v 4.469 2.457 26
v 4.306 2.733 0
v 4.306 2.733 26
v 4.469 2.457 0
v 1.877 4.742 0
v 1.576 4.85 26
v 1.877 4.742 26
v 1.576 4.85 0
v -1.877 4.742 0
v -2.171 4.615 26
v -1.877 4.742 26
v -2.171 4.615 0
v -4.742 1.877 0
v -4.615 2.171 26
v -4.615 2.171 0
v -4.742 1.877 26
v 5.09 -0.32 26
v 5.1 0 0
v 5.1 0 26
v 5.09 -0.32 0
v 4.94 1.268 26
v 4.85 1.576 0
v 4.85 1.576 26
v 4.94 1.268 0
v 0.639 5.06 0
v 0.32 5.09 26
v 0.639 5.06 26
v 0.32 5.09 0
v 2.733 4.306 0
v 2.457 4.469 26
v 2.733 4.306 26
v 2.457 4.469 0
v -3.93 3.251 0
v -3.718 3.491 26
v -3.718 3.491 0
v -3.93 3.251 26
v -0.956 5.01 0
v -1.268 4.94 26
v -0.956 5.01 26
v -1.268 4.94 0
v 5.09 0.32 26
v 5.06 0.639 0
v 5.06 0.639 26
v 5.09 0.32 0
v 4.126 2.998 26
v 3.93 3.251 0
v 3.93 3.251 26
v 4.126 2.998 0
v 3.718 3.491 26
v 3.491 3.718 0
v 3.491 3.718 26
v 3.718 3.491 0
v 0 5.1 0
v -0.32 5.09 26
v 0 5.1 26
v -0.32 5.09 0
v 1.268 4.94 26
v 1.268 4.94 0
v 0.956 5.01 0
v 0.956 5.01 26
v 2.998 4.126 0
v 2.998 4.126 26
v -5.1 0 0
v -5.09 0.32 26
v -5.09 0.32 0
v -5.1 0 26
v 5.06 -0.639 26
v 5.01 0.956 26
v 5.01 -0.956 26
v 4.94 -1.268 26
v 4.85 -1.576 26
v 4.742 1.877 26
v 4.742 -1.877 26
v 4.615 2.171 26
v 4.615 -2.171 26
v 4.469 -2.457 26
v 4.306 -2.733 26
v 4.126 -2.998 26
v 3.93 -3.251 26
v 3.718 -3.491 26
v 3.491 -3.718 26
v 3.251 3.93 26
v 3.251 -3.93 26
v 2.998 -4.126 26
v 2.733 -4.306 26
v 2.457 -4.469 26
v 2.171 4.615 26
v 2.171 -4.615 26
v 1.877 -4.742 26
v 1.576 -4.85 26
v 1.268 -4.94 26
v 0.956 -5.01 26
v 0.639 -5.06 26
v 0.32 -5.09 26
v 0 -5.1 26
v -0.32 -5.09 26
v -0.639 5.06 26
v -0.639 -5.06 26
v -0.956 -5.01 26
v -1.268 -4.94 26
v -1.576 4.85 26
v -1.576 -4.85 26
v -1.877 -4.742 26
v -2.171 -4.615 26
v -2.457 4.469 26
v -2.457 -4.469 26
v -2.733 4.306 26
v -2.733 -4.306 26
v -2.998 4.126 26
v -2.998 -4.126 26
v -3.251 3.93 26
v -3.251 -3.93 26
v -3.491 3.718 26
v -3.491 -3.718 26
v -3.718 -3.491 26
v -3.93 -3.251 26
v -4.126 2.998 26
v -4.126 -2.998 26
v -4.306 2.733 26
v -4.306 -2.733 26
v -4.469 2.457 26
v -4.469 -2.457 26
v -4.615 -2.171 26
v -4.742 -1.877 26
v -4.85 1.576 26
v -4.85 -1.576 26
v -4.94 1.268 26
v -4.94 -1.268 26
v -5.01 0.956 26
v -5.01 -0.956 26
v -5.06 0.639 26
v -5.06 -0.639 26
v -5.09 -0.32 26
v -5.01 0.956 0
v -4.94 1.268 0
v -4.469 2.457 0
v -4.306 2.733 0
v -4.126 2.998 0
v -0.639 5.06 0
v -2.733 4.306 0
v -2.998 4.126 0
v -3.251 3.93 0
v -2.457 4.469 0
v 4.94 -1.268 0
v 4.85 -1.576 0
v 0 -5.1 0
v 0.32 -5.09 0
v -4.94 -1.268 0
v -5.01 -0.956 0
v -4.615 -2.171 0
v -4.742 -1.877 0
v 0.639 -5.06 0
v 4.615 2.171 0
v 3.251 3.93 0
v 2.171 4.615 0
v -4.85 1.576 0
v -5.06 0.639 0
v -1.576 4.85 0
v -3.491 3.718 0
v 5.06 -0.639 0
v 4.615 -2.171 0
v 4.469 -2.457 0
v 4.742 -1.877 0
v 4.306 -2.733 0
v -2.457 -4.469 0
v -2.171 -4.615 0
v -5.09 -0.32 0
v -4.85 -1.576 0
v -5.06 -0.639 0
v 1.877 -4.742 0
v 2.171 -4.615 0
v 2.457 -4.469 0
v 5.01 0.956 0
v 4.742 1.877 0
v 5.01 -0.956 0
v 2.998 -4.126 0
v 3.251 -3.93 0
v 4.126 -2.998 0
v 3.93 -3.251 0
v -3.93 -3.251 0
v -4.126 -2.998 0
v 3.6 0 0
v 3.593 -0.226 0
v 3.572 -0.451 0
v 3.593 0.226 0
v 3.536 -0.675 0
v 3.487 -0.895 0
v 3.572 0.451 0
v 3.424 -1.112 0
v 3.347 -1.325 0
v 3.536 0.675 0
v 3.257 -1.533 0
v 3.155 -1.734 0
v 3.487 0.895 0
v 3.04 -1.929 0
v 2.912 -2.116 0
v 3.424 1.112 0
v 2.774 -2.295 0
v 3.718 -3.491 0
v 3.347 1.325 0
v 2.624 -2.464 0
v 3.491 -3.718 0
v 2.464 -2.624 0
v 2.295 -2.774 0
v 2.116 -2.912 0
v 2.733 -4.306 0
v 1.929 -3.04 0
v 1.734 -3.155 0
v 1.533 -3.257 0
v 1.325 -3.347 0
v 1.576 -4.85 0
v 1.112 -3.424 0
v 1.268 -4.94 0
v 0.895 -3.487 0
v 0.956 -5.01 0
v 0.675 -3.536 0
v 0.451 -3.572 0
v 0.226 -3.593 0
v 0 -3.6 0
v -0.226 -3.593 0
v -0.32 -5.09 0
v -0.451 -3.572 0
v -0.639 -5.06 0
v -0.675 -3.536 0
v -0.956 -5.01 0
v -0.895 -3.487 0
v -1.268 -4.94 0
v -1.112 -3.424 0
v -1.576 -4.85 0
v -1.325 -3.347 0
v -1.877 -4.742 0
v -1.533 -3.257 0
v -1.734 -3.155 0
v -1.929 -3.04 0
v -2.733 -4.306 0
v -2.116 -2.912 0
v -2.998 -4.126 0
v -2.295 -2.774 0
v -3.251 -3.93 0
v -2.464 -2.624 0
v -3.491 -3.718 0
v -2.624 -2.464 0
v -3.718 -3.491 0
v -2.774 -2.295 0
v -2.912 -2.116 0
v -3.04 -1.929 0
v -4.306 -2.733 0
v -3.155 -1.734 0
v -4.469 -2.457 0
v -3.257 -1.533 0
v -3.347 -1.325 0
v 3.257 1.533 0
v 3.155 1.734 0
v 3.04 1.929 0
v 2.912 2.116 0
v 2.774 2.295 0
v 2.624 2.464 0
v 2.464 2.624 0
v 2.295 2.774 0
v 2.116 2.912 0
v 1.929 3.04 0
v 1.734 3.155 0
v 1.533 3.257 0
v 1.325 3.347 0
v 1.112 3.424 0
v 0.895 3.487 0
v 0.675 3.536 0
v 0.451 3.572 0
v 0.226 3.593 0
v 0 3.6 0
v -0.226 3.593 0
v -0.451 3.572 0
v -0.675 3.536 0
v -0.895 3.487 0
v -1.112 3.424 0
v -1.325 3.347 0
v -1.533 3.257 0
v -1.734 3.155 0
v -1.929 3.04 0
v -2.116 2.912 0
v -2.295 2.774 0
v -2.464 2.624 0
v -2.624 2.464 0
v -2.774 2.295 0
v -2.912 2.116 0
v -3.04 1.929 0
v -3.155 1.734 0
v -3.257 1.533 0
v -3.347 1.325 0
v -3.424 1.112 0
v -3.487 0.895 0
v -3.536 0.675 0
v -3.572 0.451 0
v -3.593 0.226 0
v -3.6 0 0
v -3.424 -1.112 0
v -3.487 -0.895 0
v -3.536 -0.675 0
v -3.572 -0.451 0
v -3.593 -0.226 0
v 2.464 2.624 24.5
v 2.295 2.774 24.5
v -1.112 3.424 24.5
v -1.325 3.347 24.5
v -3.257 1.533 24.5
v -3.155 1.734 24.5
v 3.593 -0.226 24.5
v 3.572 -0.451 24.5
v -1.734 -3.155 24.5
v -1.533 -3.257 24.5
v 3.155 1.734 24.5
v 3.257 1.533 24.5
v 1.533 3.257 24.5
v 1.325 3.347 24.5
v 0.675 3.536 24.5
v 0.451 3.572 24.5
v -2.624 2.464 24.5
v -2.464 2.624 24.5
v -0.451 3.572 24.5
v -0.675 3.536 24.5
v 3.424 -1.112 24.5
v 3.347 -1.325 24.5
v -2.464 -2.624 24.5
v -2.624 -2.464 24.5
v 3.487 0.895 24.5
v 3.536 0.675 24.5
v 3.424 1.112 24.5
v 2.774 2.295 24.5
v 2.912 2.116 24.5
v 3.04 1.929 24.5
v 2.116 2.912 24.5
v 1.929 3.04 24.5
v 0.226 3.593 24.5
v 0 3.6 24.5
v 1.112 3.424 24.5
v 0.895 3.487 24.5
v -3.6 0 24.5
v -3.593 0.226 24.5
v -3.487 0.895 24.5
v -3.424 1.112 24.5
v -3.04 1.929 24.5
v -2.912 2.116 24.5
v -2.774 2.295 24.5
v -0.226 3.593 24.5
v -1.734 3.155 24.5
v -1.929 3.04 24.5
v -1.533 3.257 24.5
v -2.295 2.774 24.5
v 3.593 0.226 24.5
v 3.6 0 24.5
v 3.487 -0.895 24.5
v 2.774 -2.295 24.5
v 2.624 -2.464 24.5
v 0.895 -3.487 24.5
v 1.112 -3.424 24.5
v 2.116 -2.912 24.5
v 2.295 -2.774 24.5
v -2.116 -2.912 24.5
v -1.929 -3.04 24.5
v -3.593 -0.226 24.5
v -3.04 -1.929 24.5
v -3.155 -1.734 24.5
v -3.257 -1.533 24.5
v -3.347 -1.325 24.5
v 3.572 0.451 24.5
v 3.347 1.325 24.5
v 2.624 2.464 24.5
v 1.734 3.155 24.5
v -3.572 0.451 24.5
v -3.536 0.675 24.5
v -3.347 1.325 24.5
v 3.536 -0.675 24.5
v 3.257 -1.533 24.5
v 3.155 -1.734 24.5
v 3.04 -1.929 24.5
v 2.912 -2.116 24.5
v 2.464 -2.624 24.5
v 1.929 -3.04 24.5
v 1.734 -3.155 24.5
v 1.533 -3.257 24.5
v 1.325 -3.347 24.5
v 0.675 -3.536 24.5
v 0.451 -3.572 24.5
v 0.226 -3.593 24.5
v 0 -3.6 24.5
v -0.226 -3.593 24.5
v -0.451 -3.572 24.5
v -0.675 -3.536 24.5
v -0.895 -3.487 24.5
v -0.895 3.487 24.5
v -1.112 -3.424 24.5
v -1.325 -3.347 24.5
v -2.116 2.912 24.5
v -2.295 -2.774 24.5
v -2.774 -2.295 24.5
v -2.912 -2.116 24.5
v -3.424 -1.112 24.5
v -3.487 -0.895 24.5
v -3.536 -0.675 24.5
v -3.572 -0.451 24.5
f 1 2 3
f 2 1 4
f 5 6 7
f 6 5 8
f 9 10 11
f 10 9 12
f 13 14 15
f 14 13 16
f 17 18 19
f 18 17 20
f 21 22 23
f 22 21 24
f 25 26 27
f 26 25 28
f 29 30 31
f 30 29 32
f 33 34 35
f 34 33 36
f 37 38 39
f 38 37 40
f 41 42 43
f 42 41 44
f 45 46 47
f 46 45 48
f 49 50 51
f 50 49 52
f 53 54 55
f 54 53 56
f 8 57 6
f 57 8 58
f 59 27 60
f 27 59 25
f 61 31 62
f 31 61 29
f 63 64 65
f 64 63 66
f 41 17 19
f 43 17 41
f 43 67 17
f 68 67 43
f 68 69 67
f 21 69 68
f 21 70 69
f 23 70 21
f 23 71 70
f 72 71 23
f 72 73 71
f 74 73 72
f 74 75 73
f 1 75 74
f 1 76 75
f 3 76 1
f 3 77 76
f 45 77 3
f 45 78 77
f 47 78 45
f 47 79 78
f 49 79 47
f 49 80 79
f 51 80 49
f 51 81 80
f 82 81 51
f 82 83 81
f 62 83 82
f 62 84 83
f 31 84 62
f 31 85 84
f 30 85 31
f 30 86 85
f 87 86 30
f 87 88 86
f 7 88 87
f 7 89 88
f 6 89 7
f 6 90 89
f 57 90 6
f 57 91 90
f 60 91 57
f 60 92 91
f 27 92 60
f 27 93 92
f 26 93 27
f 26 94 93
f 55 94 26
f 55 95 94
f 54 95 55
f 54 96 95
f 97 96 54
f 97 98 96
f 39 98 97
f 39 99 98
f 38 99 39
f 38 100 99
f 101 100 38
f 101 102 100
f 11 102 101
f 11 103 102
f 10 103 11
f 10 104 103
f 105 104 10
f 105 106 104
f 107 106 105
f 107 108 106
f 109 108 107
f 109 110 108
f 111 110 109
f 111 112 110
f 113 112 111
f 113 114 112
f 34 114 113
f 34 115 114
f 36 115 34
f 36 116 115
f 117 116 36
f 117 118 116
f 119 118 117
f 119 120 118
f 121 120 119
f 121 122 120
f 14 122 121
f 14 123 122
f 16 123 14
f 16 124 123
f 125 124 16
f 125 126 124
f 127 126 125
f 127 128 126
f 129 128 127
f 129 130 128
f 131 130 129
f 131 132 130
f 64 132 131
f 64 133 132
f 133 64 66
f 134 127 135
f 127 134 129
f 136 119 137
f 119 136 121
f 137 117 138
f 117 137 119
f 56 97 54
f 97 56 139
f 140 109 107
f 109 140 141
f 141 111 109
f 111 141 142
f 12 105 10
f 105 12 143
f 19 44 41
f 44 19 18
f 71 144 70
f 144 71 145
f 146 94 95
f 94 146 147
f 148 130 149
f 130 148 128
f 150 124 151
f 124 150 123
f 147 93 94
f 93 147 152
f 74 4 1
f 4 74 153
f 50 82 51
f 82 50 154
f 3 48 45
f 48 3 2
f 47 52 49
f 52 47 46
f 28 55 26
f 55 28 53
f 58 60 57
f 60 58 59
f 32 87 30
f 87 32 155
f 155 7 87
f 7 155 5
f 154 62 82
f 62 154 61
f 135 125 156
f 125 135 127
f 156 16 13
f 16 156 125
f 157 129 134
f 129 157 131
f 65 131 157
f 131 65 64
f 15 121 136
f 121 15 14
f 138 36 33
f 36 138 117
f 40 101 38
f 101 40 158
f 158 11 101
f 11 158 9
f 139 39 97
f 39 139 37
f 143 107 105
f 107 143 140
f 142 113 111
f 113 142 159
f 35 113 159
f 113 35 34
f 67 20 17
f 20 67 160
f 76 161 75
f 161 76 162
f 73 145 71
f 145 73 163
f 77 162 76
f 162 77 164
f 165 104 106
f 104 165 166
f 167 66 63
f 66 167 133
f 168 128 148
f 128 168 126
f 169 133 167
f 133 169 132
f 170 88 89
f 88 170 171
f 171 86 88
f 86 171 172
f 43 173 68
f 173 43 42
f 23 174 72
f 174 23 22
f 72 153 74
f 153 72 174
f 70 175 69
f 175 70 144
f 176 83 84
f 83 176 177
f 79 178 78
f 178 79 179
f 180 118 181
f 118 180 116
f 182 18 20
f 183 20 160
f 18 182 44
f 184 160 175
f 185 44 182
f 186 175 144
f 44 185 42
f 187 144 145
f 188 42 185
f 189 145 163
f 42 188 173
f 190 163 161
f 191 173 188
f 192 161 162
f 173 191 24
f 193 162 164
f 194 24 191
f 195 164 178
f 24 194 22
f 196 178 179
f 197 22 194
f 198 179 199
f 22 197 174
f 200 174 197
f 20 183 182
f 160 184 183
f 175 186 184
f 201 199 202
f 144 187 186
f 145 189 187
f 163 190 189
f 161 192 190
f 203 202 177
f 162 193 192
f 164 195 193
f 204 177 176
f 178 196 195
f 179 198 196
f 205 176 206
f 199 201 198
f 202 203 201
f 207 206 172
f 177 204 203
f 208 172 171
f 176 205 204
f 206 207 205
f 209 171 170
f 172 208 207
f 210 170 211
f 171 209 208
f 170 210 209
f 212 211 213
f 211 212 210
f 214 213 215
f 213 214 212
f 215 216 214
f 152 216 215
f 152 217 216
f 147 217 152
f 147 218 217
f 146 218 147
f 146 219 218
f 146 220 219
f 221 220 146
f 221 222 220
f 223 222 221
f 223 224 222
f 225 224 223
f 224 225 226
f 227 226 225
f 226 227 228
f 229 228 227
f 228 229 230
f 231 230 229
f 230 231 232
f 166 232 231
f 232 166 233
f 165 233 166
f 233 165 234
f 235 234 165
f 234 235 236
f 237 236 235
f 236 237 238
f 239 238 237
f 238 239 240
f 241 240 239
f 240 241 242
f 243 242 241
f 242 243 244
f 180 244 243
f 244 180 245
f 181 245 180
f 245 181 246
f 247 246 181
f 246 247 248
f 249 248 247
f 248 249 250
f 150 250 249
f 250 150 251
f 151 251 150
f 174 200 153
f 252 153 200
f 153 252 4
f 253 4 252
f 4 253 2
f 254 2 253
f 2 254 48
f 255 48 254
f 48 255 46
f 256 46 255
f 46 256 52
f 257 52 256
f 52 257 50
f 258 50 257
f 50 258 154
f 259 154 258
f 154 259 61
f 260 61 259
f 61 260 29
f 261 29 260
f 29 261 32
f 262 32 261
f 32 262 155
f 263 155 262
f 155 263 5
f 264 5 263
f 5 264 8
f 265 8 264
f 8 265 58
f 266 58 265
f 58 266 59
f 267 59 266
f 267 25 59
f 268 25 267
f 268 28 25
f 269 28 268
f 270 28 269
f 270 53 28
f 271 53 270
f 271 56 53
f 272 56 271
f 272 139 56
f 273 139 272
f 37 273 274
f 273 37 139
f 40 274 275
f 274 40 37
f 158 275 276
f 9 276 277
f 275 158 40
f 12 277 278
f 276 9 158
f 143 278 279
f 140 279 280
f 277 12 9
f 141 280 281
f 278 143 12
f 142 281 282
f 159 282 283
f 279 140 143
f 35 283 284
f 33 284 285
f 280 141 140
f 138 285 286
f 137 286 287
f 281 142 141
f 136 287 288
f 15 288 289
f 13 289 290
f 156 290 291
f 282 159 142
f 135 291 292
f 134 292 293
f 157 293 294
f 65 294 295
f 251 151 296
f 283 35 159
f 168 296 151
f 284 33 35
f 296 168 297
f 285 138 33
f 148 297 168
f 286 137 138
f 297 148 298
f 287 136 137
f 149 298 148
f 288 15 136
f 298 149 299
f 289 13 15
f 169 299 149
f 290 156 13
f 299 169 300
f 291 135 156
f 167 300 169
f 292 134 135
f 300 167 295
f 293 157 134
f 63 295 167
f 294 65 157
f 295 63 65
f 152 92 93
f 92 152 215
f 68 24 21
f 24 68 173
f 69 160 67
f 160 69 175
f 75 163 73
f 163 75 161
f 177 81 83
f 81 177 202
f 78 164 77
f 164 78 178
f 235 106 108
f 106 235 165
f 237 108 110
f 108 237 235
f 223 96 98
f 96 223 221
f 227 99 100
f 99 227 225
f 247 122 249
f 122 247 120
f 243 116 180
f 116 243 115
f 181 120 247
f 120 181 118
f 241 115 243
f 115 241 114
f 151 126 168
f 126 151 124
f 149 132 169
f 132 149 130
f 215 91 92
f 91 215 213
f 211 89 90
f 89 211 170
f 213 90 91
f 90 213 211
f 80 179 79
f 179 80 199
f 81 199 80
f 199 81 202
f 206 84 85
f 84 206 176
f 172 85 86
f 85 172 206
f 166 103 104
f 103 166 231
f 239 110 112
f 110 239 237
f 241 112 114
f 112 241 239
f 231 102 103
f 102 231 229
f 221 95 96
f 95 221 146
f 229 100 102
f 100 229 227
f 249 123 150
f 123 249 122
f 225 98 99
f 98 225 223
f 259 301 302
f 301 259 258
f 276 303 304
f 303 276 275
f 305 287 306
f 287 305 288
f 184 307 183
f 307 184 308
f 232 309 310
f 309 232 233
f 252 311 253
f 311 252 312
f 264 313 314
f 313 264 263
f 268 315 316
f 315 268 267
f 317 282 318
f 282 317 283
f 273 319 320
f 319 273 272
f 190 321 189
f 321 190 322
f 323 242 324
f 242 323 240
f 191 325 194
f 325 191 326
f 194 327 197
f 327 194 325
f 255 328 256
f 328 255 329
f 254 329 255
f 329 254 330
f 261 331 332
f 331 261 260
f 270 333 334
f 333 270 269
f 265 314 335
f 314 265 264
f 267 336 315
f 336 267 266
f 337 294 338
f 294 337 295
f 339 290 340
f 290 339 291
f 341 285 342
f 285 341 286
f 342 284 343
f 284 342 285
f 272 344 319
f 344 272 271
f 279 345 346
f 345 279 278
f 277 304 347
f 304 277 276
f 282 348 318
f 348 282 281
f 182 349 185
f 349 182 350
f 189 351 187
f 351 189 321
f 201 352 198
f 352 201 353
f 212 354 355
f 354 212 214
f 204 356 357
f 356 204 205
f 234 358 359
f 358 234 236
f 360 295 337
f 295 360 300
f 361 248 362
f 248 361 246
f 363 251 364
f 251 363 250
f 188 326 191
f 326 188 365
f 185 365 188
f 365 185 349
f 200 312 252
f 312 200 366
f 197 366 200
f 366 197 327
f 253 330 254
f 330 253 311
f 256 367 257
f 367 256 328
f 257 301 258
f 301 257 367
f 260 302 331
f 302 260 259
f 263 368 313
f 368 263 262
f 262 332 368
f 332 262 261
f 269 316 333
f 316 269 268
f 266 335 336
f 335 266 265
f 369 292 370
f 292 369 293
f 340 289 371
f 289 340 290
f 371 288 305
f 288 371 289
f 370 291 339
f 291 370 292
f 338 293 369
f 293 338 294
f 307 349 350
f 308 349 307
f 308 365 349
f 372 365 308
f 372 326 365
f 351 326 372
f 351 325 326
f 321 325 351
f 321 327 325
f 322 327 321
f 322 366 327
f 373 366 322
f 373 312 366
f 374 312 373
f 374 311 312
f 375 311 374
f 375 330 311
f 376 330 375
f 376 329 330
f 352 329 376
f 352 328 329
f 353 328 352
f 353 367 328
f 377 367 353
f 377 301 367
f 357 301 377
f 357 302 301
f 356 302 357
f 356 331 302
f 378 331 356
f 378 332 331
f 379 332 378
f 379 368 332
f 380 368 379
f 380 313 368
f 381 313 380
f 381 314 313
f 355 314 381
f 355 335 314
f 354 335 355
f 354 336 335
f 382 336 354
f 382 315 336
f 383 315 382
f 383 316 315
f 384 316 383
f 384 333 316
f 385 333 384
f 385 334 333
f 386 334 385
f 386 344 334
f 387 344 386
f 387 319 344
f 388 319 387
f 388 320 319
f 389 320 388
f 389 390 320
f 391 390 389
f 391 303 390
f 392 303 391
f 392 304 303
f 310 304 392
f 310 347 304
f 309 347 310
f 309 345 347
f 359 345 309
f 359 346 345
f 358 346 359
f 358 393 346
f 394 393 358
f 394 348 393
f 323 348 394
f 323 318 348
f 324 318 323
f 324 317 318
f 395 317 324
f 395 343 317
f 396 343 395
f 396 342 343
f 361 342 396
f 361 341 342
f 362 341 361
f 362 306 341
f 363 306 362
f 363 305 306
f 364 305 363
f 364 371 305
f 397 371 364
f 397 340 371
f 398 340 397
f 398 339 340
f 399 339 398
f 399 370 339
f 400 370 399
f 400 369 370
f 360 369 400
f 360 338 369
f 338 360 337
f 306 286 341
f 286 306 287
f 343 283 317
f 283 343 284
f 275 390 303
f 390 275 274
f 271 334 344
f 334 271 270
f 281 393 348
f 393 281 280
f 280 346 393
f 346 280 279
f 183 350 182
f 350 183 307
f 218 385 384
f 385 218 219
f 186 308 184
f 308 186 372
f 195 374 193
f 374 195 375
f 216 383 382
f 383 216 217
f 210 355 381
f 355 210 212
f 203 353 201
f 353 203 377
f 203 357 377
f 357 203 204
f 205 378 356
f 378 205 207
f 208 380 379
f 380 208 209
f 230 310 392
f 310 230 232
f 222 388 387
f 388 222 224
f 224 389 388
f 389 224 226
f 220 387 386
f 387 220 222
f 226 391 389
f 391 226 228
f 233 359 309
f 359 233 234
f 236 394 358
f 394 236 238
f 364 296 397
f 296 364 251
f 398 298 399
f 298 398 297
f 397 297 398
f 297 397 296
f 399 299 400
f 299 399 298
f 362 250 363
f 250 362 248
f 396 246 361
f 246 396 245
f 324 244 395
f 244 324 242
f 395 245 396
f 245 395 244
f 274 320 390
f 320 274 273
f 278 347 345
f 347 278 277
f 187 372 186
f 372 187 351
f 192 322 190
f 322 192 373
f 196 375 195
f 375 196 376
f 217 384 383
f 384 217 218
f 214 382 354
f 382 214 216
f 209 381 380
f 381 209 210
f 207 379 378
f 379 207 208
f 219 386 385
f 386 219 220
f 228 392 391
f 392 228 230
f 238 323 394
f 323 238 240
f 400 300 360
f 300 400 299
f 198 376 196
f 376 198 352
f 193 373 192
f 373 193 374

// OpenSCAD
// file: ../motor_housing.scad
/*
Title:          motor_housing.scad
Description:    encapsulation for the motors
Authors:        Pau Roura (@proura)
Date:           20180610
Version:        0.1
Notes:

    Default values for module motor_housing

    module motor_housing(
        w_walls=1.5,        //with of the walls
        d_motor=7.2,        //motor diameter
        h_motor_body=26,    //motor housing height
        d_motor_shaft=1     //motor shaft diameter
    )
*/

module motor_housing(w_walls=1.5, d_motor=7.2, h_motor_body=26, d_motor_shaft=1){
    difference() {
                            cylinder(d=d_motor+w_walls*2, h=h_motor_body); 
        translate([0,0,-1]) cylinder(d=d_motor, h=h_motor_body-w_walls+1);
        translate([0,0,1])  cylinder(d=d_motor_shaft, h=h_motor_body);
    }     
}

motor_housing();
// main file
/*
Title:          motor_housing.scad for generate STL file
Description:    encapsulation for the motors
Authors:        Pau Roura (@proura)
Date:           20180610
Version:        0.1
Notes:

    Default values for module motor_housing

    module motor_housing(
        w_walls=1.5,        //with of the walls
        d_motor=7.2,        //motor diameter
        h_motor_body=26,    //motor housing height
        d_motor_shaft=1     //motor shaft diameter
    )
*/

use <../motor_housing.scad>;
$fn = 100;
motor_housing(d_motor_shaft=0);
